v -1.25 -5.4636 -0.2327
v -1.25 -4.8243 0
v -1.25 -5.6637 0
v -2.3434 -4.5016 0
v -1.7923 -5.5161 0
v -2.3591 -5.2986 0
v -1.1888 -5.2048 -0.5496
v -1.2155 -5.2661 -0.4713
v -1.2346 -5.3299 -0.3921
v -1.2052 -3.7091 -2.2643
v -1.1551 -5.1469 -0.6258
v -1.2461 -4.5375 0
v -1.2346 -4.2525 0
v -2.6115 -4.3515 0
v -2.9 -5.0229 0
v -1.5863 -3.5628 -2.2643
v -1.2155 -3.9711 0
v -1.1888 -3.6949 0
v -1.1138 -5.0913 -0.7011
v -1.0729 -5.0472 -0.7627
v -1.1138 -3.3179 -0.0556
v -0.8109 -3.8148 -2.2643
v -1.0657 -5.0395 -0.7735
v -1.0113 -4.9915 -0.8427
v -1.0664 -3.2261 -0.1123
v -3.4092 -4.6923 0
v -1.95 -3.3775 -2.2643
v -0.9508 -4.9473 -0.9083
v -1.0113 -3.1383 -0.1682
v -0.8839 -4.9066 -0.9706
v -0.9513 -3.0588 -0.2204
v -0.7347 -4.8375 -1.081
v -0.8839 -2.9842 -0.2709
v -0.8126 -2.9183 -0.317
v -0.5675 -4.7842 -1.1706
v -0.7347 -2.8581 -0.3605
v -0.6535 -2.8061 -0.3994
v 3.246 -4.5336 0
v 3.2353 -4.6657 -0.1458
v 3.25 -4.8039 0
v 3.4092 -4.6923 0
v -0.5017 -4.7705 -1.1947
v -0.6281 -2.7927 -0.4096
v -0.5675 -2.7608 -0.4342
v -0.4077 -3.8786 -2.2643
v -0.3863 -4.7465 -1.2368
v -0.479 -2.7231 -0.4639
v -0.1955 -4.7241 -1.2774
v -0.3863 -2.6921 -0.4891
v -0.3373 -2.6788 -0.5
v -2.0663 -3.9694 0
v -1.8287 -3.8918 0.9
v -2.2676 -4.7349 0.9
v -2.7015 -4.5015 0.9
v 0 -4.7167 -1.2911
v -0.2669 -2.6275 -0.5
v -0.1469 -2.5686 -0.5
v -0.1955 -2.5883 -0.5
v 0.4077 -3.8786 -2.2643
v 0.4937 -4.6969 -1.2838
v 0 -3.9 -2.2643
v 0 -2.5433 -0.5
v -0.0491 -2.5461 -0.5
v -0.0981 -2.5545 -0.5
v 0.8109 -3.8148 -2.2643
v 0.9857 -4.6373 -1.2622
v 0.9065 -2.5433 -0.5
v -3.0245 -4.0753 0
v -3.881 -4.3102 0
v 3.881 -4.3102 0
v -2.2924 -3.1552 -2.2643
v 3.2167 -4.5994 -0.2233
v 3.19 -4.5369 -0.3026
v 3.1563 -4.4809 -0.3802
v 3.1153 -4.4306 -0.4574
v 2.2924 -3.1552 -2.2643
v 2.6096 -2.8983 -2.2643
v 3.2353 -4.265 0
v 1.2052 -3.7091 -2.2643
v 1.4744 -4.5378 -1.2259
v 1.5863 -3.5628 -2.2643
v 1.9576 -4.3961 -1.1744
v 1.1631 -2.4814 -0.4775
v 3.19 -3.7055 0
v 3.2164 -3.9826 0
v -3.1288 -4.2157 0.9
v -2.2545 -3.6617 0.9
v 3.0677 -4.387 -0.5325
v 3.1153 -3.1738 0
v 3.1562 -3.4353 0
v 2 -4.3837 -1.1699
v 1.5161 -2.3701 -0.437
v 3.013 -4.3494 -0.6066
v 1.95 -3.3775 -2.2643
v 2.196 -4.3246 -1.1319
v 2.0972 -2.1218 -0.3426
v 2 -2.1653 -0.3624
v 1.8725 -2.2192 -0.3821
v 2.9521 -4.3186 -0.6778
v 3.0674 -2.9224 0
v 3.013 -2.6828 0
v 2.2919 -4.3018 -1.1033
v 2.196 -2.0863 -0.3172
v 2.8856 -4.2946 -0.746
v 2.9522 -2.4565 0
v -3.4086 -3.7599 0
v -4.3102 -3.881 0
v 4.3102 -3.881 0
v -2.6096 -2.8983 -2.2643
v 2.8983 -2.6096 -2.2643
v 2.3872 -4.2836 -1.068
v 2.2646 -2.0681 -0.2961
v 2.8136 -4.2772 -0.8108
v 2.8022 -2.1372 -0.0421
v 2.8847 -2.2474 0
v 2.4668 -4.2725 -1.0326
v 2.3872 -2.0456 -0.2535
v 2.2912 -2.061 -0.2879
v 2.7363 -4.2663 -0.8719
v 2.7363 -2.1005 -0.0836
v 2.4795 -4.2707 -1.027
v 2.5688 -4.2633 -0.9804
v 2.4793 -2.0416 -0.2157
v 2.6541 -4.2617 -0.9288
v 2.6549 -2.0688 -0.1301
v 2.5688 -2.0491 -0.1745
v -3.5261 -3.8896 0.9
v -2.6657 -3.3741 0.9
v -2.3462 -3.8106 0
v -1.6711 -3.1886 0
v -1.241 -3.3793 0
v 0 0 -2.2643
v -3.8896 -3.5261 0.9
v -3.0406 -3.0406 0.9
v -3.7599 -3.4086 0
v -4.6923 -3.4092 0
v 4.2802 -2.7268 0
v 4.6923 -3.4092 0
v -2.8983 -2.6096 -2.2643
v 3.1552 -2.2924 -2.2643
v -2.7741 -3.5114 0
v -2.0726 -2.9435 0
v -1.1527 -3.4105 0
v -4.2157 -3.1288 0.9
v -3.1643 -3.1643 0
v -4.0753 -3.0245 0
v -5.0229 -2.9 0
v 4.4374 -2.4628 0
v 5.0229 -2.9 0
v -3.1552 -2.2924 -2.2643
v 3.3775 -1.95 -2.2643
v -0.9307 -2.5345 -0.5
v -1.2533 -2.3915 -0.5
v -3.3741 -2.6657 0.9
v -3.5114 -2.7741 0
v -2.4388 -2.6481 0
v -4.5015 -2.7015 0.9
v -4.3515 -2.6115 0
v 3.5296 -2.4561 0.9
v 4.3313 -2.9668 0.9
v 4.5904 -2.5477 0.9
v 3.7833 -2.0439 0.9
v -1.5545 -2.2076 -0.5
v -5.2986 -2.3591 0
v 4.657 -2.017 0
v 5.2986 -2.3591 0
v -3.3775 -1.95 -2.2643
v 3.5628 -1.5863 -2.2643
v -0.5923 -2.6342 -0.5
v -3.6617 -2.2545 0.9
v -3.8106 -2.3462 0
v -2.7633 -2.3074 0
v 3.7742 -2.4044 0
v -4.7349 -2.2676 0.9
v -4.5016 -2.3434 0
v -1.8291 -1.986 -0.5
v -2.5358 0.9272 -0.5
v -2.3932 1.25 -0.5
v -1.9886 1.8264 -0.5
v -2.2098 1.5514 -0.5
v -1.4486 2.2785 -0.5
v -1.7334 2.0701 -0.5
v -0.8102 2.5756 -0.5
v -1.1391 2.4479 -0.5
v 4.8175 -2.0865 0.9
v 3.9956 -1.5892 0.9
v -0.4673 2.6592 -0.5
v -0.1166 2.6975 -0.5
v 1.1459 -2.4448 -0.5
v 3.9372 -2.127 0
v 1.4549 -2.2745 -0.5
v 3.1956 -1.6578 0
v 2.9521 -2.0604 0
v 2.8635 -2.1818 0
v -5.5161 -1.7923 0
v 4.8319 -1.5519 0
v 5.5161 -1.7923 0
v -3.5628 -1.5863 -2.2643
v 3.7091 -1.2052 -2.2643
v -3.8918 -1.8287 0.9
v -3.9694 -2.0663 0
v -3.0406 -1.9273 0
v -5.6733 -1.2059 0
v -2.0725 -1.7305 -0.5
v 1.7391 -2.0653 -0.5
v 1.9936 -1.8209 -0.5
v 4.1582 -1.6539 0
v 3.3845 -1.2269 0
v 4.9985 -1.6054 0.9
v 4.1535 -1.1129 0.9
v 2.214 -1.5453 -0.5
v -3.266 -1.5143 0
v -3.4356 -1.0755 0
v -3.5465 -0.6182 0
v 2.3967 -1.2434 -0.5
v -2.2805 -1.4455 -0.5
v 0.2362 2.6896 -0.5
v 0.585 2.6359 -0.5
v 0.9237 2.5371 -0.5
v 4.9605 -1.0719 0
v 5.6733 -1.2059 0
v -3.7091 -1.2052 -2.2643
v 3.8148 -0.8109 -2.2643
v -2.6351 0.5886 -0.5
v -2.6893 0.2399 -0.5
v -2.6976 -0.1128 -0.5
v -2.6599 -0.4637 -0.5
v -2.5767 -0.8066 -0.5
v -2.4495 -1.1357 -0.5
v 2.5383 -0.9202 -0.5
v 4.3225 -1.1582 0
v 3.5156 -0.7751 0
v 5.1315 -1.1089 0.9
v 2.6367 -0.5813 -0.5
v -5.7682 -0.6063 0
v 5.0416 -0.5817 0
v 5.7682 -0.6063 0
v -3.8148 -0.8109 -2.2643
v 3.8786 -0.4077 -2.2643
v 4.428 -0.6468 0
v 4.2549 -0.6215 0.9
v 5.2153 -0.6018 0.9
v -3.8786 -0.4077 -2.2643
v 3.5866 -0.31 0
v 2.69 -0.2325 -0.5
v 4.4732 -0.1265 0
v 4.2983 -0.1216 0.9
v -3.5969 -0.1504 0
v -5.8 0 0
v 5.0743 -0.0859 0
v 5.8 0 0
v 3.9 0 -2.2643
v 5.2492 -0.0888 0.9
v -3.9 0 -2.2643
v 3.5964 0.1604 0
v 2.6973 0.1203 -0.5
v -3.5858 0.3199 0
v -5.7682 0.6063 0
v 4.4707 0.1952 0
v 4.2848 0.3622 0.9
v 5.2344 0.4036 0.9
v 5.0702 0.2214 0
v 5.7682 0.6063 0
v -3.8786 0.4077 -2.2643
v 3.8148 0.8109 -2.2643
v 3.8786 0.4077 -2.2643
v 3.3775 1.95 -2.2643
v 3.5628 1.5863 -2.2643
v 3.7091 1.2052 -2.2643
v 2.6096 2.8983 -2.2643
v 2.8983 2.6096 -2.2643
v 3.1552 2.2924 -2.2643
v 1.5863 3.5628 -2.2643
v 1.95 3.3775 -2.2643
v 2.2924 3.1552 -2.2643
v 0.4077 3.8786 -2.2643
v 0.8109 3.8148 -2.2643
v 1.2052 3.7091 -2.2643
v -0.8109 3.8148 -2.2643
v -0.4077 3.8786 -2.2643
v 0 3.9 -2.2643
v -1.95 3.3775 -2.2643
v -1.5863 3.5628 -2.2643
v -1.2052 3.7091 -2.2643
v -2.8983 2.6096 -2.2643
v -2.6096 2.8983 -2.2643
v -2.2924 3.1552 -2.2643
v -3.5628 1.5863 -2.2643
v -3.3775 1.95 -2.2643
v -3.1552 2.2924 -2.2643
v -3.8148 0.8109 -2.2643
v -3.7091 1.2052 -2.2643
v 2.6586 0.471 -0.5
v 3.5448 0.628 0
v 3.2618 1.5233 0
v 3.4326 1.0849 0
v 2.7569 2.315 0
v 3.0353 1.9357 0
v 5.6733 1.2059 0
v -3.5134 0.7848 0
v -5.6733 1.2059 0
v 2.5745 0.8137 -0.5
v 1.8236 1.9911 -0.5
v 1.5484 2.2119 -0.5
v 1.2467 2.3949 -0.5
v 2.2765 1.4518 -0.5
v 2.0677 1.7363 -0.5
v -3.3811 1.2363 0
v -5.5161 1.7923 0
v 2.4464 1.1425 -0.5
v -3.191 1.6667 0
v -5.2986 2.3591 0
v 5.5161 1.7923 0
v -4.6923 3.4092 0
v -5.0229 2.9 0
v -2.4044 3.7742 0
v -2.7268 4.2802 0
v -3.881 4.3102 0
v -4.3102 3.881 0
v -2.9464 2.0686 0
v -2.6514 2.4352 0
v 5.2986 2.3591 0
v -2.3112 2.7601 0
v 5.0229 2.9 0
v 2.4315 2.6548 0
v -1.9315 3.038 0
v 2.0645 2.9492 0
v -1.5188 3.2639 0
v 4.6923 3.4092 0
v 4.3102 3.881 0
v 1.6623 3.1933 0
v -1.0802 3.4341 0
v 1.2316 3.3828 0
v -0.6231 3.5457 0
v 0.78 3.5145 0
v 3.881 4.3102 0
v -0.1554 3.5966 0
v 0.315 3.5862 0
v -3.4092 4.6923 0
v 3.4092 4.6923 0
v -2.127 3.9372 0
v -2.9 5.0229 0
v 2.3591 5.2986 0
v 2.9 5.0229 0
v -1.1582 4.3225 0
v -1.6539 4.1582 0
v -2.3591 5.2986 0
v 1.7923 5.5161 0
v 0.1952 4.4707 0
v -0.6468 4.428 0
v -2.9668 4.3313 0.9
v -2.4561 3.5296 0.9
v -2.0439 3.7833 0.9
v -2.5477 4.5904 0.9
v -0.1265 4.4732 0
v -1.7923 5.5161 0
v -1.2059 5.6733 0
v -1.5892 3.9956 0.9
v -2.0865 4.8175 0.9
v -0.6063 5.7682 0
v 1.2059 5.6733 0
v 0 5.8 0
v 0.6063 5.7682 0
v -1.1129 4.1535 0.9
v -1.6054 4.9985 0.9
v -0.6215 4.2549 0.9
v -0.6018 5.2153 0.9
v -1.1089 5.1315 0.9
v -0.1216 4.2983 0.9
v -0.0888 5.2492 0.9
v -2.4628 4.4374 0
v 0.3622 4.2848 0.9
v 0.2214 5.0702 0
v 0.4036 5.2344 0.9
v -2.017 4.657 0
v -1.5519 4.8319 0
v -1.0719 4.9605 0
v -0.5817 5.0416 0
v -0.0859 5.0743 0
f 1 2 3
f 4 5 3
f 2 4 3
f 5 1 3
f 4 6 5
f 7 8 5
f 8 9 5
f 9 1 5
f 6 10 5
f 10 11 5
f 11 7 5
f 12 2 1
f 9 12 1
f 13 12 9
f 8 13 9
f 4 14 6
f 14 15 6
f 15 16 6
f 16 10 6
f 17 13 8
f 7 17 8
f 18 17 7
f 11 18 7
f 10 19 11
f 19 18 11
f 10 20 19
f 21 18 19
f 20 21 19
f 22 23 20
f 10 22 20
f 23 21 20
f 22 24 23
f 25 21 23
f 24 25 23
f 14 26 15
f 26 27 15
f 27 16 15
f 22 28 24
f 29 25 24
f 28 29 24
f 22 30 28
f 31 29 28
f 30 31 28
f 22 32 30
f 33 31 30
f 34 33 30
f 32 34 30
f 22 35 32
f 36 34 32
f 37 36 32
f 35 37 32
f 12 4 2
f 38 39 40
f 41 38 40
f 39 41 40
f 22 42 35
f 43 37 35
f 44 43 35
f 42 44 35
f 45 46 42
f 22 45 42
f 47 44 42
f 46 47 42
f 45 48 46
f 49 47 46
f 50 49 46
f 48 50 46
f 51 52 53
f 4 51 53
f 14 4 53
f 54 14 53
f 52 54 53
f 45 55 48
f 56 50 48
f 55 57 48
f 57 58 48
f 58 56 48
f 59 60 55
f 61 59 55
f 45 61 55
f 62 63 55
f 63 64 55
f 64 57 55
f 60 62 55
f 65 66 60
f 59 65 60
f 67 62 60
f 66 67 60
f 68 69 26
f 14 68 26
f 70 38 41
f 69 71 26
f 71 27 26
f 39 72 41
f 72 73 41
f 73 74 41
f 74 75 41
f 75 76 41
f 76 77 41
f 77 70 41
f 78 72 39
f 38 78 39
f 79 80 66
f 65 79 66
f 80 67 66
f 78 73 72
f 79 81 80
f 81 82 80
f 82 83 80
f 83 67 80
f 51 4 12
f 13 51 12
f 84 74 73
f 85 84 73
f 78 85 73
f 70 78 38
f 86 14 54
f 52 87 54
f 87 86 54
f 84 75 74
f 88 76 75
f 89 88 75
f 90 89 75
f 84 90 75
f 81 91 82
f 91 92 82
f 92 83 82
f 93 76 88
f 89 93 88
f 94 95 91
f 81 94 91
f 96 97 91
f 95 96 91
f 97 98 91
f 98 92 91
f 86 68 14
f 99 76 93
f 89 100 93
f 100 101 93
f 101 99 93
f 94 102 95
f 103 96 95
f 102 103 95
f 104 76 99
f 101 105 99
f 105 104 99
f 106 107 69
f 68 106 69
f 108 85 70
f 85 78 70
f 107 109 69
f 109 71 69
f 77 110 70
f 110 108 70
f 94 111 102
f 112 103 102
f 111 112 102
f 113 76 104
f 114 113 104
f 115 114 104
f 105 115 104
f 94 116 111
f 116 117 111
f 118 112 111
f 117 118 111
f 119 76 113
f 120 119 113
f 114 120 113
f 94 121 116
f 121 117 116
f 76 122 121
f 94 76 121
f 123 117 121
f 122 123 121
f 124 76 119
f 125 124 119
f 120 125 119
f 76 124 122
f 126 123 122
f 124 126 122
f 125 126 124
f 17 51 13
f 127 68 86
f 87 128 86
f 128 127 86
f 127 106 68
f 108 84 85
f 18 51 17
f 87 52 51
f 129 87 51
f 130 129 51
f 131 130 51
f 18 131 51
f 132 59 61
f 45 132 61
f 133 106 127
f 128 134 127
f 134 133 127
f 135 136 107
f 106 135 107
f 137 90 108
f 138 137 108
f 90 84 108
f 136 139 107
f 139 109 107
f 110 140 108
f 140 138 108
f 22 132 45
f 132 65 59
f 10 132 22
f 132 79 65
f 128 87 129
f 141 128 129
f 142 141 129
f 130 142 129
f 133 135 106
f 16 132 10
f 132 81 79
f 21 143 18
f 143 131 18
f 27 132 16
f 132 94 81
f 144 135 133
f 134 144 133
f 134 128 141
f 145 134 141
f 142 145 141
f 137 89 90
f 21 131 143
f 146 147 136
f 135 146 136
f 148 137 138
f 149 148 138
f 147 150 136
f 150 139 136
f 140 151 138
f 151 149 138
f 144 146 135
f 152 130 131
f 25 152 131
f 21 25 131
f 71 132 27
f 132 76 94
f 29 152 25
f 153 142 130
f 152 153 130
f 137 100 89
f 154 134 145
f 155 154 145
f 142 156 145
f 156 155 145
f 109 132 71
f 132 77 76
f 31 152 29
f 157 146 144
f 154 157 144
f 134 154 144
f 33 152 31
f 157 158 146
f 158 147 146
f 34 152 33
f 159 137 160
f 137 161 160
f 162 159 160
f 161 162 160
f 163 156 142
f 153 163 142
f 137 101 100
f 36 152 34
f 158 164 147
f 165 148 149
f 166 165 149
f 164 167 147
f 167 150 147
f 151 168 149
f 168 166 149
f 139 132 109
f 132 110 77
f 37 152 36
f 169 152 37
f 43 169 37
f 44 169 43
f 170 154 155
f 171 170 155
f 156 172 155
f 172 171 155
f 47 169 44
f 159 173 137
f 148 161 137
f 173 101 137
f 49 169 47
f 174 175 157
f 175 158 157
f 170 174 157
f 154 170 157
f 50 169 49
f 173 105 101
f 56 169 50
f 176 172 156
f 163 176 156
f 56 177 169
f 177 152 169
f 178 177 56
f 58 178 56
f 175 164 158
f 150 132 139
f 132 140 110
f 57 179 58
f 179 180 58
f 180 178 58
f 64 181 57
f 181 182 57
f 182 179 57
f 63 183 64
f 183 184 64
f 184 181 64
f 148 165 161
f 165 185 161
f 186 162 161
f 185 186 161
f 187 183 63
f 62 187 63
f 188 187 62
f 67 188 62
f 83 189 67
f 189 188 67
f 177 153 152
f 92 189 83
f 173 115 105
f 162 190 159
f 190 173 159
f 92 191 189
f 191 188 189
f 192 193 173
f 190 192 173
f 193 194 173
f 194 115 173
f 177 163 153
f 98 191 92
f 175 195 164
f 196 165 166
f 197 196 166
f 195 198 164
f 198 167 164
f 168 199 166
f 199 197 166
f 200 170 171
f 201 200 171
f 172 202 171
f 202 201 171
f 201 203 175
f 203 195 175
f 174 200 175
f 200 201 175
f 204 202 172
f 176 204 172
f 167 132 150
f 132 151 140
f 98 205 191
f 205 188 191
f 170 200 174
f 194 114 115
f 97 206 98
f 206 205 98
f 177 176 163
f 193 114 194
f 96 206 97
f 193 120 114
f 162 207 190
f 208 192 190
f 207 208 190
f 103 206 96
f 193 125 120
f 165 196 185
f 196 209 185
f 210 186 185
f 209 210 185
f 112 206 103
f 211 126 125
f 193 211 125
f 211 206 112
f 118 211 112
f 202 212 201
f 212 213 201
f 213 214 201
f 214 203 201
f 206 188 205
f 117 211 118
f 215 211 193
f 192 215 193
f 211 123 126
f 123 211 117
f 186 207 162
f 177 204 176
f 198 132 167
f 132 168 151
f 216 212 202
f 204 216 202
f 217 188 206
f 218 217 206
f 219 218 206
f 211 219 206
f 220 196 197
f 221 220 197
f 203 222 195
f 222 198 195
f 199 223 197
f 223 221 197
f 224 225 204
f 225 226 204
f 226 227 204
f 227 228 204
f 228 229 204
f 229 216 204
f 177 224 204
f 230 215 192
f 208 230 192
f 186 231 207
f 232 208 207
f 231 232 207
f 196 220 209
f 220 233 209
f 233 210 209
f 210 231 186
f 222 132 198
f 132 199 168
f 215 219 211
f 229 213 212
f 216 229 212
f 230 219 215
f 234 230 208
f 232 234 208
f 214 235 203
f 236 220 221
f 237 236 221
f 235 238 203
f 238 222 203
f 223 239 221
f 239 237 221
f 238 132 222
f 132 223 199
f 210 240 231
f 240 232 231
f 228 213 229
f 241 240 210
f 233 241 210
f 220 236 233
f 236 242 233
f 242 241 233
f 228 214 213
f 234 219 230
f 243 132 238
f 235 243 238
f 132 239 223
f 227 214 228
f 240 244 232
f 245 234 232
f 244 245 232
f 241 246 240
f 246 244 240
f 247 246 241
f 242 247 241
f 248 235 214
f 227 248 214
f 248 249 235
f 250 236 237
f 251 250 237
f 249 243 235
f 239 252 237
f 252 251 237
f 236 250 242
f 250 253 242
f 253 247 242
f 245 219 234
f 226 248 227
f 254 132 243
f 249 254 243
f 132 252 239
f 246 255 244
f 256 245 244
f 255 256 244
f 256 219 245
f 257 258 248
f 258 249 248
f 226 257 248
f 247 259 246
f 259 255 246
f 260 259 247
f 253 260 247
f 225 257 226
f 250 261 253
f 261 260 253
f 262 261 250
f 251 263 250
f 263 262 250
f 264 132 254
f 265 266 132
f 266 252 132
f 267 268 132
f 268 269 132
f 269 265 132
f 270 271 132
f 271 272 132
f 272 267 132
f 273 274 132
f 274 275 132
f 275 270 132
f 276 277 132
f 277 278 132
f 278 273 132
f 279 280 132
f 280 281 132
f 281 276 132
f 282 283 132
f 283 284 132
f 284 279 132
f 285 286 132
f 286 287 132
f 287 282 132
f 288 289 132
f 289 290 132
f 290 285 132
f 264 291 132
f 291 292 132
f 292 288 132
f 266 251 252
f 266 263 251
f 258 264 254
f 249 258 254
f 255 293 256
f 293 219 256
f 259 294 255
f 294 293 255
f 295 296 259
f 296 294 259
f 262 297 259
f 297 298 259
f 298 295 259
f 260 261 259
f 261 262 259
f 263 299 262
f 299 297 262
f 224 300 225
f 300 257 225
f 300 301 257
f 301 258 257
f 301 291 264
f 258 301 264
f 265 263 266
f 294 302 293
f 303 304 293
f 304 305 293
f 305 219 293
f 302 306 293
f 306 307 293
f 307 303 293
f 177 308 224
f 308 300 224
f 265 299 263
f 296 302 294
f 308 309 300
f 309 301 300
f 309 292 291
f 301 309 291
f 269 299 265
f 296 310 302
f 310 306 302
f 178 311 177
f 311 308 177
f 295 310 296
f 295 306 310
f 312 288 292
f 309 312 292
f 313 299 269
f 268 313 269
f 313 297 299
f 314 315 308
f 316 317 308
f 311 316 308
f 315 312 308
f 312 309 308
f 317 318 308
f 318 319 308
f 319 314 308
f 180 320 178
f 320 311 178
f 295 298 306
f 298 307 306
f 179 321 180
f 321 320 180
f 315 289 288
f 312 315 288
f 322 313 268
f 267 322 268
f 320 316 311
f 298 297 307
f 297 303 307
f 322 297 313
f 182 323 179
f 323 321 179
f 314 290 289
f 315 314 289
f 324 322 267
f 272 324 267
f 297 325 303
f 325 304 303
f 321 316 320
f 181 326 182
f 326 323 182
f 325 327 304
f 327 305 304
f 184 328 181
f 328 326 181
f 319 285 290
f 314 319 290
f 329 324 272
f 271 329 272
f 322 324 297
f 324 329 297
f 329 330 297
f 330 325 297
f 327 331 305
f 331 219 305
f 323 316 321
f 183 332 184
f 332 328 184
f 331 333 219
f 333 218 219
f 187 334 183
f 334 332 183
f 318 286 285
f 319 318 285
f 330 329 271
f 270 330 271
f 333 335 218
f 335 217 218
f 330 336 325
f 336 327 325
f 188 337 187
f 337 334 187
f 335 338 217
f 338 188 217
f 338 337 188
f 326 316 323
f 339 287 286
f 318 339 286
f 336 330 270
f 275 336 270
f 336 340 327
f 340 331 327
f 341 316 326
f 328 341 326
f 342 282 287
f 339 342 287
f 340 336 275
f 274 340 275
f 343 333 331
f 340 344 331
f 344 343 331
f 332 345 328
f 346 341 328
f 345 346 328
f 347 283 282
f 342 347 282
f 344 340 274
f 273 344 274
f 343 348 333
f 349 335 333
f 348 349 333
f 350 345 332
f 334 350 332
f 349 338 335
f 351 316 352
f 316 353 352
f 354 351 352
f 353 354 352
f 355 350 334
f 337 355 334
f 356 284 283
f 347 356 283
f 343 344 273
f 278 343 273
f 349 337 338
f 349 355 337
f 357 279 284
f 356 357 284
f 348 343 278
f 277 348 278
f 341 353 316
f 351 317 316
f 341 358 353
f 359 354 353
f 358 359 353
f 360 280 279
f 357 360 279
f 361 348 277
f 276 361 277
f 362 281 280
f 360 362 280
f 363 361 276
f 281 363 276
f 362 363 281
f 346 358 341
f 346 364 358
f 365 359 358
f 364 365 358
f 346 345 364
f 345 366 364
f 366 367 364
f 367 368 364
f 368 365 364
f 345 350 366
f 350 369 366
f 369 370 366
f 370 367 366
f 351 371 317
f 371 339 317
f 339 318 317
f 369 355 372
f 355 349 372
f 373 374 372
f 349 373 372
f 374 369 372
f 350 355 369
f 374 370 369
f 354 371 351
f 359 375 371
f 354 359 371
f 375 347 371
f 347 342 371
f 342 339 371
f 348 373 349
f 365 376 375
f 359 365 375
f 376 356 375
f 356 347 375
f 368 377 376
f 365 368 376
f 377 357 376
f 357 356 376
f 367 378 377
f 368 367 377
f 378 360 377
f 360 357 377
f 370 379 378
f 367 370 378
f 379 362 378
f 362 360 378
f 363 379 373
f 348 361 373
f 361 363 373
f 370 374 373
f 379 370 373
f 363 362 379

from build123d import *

# Parameters (mm, degrees)
BOSS_EXTRUDE1_DEPTH      = 0.9
BOSS_EXTRUDE1_DRAFT      = -11
CIRPATTERN1_COPY_1_DEPTH = 0.9
CIRPATTERN1_COPY_1_DRAFT = -11
CIRPATTERN1_COPY_2_DEPTH = 0.9
CIRPATTERN1_COPY_2_DRAFT = -11
CUT_EXTRUDE2_REACH       = 14.838


with BuildPart() as part:
    # Sketch1 → Revolve1 (revolve)
    with BuildSketch(Plane(origin=(0, 0, 0), x_dir=(0, 0, -1), z_dir=(1, 0, 0)), mode=Mode.PRIVATE) as revolve1_sk:
        Polygon((0, 5.8), (2.264331826, 3.9), (2.264331826, 0), (0.5, 0), (0.5, 2.7), (0, 3.6), align=None)
    revolve(revolve1_sk.sketch.rotate(Axis((0, 0, 0), (0, 0, -1)), 90), axis=Axis((0, 0, 0), (0, 0, -1)))


with BuildPart() as boss_extrude1_tool:
    # Sketch7 → Boss-Extrude1 (with draft: the straight prism first)
    with BuildSketch(Plane.XY):
        with BuildLine():
            Line((-2.726795512, 4.280211588), (-2.404415747, 3.77417672))
            ThreePointArc((-2.404415747, 3.77417672), (-1.158215227, 4.322518073), (0.195196758, 4.470740792))
            Line((0.195196758, 4.470740792), (0.221368391, 5.070169725))
            ThreePointArc((0.221368391, 5.070169725), (-1.313506654, 4.902073568), (-2.726795512, 4.280211588))
        make_face()
    extrude(amount=BOSS_EXTRUDE1_DEPTH)
    # Boss-Extrude1: the draft: its side faces are tilted about the plane it starts from
    boss_extrude1_sides = [boss_extrude1_tool.faces().sort_by_distance(p)[0] for p in [
        (0.208282575, 4.770455258, 0.45),
        (-1.313506654, 4.902073568, 0.45),
        (-2.56560563, 4.027194154, 0.45),
        (-1.158215227, 4.322518073, 0.45),
    ]]
    draft(boss_extrude1_sides, Plane.XY, BOSS_EXTRUDE1_DRAFT)


with BuildPart() as part_1:
    add(part.part)

    # Boss-Extrude1: add boss_extrude1_tool
    add(boss_extrude1_tool.part)


with BuildPart() as cirpattern1_copy_1_tool:
    # CirPattern1 copy 1 sketch → CirPattern1 copy 1 (with draft: the straight prism first)
    with BuildSketch(Plane(origin=(0, 0, 0), x_dir=(-0.4999999999999998, 0.8660254037844387, 0), z_dir=(0, 0, 1))):
        with BuildLine():
            Line((-2.726795512, 4.280211588), (-2.404415747, 3.77417672))
            ThreePointArc((-2.404415747, 3.77417672), (-1.158215227, 4.322518073), (0.195196758, 4.470740792))
            Line((0.195196758, 4.470740792), (0.221368391, 5.070169725))
            ThreePointArc((0.221368391, 5.070169725), (-1.313506654, 4.902073568), (-2.726795512, 4.280211588))
        make_face()
    extrude(amount=CIRPATTERN1_COPY_1_DEPTH)
    # CirPattern1 copy 1: the draft: its side faces are tilted about the plane it starts from
    cirpattern1_copy_1_sides = [cirpattern1_copy_1_tool.faces().sort_by_distance(p)[0] for p in [
        (-4.235476729, -2.204849628, 0.45),
        (-3.588566914, -3.588566914, 0.45),
        (-2.204849628, -4.235476729, 0.45),
        (-3.164302846, -3.164302846, 0.45),
    ]]
    draft(cirpattern1_copy_1_sides, Plane(origin=(0, 0, 0), x_dir=(-0.4999999999999998, 0.8660254037844387, 0), z_dir=(0, 0, 1)), CIRPATTERN1_COPY_1_DRAFT)


with BuildPart() as part_2:
    add(part_1.part)

    # CirPattern1 copy 1: add cirpattern1_copy_1_tool
    add(cirpattern1_copy_1_tool.part)


with BuildPart() as cirpattern1_copy_2_tool:
    # CirPattern1 copy 2 sketch → CirPattern1 copy 2 (with draft: the straight prism first)
    with BuildSketch(Plane(origin=(0, 0, 0), x_dir=(-0.5000000000000004, -0.8660254037844384, 0), z_dir=(0, 0, 1))):
        with BuildLine():
            Line((-2.726795512, 4.280211588), (-2.404415747, 3.77417672))
            ThreePointArc((-2.404415747, 3.77417672), (-1.158215227, 4.322518073), (0.195196758, 4.470740792))
            Line((0.195196758, 4.470740792), (0.221368391, 5.070169725))
            ThreePointArc((0.221368391, 5.070169725), (-1.313506654, 4.902073568), (-2.726795512, 4.280211588))
        make_face()
    extrude(amount=CIRPATTERN1_COPY_2_DEPTH)
    # CirPattern1 copy 2: the draft: its side faces are tilted about the plane it starts from
    cirpattern1_copy_2_sides = [cirpattern1_copy_2_tool.faces().sort_by_distance(p)[0] for p in [
        (4.027194154, -2.56560563, 0.45),
        (4.902073568, -1.313506654, 0.45),
        (4.770455258, 0.208282575, 0.45),
        (4.322518073, -1.158215227, 0.45),
    ]]
    draft(cirpattern1_copy_2_sides, Plane(origin=(0, 0, 0), x_dir=(-0.5000000000000004, -0.8660254037844384, 0), z_dir=(0, 0, 1)), CIRPATTERN1_COPY_2_DRAFT)


with BuildPart() as part_3:
    add(part_2.part)

    # CirPattern1 copy 2: add cirpattern1_copy_2_tool
    add(cirpattern1_copy_2_tool.part)

    # Sketch11 → Cut-Extrude2 (cut, up to next)
    with BuildSketch(Plane(origin=(0, -5.298133329, -1.928362829), x_dir=(-1, 0, 0), z_dir=(0, -0.9396926207859081, -0.34202014332566943)), mode=Mode.PRIVATE) as cut_extrude2_sk1:
        with BuildLine():
            Line((0, -0.4), (-2, -0.4))
            ThreePointArc((-2, -0.4), (-2.883883476, -0.766116524), (-3.25, -1.65))
            Line((-3.25, -1.65), (-3.25, -2.9))
            Line((-3.25, -2.9), (-2, -2.9))
            Line((-2, -2.9), (0, -2.9))
            Line((0, -2.9), (1.25, -2.9))
            Line((1.25, -2.9), (1.25, -1.65))
            ThreePointArc((1.25, -1.65), (0.883883476, -0.766116524), (0, -0.4))
        make_face()
    cut_extrude2_tool1 = extrude(cut_extrude2_sk1.sketch, amount=-CUT_EXTRUDE2_REACH, mode=Mode.PRIVATE) & part_3.part
    add(cut_extrude2_tool1.solids().sort_by_distance((1, -5.883514, -0.320042))[0], mode=Mode.SUBTRACT)


solid = part_3.part
